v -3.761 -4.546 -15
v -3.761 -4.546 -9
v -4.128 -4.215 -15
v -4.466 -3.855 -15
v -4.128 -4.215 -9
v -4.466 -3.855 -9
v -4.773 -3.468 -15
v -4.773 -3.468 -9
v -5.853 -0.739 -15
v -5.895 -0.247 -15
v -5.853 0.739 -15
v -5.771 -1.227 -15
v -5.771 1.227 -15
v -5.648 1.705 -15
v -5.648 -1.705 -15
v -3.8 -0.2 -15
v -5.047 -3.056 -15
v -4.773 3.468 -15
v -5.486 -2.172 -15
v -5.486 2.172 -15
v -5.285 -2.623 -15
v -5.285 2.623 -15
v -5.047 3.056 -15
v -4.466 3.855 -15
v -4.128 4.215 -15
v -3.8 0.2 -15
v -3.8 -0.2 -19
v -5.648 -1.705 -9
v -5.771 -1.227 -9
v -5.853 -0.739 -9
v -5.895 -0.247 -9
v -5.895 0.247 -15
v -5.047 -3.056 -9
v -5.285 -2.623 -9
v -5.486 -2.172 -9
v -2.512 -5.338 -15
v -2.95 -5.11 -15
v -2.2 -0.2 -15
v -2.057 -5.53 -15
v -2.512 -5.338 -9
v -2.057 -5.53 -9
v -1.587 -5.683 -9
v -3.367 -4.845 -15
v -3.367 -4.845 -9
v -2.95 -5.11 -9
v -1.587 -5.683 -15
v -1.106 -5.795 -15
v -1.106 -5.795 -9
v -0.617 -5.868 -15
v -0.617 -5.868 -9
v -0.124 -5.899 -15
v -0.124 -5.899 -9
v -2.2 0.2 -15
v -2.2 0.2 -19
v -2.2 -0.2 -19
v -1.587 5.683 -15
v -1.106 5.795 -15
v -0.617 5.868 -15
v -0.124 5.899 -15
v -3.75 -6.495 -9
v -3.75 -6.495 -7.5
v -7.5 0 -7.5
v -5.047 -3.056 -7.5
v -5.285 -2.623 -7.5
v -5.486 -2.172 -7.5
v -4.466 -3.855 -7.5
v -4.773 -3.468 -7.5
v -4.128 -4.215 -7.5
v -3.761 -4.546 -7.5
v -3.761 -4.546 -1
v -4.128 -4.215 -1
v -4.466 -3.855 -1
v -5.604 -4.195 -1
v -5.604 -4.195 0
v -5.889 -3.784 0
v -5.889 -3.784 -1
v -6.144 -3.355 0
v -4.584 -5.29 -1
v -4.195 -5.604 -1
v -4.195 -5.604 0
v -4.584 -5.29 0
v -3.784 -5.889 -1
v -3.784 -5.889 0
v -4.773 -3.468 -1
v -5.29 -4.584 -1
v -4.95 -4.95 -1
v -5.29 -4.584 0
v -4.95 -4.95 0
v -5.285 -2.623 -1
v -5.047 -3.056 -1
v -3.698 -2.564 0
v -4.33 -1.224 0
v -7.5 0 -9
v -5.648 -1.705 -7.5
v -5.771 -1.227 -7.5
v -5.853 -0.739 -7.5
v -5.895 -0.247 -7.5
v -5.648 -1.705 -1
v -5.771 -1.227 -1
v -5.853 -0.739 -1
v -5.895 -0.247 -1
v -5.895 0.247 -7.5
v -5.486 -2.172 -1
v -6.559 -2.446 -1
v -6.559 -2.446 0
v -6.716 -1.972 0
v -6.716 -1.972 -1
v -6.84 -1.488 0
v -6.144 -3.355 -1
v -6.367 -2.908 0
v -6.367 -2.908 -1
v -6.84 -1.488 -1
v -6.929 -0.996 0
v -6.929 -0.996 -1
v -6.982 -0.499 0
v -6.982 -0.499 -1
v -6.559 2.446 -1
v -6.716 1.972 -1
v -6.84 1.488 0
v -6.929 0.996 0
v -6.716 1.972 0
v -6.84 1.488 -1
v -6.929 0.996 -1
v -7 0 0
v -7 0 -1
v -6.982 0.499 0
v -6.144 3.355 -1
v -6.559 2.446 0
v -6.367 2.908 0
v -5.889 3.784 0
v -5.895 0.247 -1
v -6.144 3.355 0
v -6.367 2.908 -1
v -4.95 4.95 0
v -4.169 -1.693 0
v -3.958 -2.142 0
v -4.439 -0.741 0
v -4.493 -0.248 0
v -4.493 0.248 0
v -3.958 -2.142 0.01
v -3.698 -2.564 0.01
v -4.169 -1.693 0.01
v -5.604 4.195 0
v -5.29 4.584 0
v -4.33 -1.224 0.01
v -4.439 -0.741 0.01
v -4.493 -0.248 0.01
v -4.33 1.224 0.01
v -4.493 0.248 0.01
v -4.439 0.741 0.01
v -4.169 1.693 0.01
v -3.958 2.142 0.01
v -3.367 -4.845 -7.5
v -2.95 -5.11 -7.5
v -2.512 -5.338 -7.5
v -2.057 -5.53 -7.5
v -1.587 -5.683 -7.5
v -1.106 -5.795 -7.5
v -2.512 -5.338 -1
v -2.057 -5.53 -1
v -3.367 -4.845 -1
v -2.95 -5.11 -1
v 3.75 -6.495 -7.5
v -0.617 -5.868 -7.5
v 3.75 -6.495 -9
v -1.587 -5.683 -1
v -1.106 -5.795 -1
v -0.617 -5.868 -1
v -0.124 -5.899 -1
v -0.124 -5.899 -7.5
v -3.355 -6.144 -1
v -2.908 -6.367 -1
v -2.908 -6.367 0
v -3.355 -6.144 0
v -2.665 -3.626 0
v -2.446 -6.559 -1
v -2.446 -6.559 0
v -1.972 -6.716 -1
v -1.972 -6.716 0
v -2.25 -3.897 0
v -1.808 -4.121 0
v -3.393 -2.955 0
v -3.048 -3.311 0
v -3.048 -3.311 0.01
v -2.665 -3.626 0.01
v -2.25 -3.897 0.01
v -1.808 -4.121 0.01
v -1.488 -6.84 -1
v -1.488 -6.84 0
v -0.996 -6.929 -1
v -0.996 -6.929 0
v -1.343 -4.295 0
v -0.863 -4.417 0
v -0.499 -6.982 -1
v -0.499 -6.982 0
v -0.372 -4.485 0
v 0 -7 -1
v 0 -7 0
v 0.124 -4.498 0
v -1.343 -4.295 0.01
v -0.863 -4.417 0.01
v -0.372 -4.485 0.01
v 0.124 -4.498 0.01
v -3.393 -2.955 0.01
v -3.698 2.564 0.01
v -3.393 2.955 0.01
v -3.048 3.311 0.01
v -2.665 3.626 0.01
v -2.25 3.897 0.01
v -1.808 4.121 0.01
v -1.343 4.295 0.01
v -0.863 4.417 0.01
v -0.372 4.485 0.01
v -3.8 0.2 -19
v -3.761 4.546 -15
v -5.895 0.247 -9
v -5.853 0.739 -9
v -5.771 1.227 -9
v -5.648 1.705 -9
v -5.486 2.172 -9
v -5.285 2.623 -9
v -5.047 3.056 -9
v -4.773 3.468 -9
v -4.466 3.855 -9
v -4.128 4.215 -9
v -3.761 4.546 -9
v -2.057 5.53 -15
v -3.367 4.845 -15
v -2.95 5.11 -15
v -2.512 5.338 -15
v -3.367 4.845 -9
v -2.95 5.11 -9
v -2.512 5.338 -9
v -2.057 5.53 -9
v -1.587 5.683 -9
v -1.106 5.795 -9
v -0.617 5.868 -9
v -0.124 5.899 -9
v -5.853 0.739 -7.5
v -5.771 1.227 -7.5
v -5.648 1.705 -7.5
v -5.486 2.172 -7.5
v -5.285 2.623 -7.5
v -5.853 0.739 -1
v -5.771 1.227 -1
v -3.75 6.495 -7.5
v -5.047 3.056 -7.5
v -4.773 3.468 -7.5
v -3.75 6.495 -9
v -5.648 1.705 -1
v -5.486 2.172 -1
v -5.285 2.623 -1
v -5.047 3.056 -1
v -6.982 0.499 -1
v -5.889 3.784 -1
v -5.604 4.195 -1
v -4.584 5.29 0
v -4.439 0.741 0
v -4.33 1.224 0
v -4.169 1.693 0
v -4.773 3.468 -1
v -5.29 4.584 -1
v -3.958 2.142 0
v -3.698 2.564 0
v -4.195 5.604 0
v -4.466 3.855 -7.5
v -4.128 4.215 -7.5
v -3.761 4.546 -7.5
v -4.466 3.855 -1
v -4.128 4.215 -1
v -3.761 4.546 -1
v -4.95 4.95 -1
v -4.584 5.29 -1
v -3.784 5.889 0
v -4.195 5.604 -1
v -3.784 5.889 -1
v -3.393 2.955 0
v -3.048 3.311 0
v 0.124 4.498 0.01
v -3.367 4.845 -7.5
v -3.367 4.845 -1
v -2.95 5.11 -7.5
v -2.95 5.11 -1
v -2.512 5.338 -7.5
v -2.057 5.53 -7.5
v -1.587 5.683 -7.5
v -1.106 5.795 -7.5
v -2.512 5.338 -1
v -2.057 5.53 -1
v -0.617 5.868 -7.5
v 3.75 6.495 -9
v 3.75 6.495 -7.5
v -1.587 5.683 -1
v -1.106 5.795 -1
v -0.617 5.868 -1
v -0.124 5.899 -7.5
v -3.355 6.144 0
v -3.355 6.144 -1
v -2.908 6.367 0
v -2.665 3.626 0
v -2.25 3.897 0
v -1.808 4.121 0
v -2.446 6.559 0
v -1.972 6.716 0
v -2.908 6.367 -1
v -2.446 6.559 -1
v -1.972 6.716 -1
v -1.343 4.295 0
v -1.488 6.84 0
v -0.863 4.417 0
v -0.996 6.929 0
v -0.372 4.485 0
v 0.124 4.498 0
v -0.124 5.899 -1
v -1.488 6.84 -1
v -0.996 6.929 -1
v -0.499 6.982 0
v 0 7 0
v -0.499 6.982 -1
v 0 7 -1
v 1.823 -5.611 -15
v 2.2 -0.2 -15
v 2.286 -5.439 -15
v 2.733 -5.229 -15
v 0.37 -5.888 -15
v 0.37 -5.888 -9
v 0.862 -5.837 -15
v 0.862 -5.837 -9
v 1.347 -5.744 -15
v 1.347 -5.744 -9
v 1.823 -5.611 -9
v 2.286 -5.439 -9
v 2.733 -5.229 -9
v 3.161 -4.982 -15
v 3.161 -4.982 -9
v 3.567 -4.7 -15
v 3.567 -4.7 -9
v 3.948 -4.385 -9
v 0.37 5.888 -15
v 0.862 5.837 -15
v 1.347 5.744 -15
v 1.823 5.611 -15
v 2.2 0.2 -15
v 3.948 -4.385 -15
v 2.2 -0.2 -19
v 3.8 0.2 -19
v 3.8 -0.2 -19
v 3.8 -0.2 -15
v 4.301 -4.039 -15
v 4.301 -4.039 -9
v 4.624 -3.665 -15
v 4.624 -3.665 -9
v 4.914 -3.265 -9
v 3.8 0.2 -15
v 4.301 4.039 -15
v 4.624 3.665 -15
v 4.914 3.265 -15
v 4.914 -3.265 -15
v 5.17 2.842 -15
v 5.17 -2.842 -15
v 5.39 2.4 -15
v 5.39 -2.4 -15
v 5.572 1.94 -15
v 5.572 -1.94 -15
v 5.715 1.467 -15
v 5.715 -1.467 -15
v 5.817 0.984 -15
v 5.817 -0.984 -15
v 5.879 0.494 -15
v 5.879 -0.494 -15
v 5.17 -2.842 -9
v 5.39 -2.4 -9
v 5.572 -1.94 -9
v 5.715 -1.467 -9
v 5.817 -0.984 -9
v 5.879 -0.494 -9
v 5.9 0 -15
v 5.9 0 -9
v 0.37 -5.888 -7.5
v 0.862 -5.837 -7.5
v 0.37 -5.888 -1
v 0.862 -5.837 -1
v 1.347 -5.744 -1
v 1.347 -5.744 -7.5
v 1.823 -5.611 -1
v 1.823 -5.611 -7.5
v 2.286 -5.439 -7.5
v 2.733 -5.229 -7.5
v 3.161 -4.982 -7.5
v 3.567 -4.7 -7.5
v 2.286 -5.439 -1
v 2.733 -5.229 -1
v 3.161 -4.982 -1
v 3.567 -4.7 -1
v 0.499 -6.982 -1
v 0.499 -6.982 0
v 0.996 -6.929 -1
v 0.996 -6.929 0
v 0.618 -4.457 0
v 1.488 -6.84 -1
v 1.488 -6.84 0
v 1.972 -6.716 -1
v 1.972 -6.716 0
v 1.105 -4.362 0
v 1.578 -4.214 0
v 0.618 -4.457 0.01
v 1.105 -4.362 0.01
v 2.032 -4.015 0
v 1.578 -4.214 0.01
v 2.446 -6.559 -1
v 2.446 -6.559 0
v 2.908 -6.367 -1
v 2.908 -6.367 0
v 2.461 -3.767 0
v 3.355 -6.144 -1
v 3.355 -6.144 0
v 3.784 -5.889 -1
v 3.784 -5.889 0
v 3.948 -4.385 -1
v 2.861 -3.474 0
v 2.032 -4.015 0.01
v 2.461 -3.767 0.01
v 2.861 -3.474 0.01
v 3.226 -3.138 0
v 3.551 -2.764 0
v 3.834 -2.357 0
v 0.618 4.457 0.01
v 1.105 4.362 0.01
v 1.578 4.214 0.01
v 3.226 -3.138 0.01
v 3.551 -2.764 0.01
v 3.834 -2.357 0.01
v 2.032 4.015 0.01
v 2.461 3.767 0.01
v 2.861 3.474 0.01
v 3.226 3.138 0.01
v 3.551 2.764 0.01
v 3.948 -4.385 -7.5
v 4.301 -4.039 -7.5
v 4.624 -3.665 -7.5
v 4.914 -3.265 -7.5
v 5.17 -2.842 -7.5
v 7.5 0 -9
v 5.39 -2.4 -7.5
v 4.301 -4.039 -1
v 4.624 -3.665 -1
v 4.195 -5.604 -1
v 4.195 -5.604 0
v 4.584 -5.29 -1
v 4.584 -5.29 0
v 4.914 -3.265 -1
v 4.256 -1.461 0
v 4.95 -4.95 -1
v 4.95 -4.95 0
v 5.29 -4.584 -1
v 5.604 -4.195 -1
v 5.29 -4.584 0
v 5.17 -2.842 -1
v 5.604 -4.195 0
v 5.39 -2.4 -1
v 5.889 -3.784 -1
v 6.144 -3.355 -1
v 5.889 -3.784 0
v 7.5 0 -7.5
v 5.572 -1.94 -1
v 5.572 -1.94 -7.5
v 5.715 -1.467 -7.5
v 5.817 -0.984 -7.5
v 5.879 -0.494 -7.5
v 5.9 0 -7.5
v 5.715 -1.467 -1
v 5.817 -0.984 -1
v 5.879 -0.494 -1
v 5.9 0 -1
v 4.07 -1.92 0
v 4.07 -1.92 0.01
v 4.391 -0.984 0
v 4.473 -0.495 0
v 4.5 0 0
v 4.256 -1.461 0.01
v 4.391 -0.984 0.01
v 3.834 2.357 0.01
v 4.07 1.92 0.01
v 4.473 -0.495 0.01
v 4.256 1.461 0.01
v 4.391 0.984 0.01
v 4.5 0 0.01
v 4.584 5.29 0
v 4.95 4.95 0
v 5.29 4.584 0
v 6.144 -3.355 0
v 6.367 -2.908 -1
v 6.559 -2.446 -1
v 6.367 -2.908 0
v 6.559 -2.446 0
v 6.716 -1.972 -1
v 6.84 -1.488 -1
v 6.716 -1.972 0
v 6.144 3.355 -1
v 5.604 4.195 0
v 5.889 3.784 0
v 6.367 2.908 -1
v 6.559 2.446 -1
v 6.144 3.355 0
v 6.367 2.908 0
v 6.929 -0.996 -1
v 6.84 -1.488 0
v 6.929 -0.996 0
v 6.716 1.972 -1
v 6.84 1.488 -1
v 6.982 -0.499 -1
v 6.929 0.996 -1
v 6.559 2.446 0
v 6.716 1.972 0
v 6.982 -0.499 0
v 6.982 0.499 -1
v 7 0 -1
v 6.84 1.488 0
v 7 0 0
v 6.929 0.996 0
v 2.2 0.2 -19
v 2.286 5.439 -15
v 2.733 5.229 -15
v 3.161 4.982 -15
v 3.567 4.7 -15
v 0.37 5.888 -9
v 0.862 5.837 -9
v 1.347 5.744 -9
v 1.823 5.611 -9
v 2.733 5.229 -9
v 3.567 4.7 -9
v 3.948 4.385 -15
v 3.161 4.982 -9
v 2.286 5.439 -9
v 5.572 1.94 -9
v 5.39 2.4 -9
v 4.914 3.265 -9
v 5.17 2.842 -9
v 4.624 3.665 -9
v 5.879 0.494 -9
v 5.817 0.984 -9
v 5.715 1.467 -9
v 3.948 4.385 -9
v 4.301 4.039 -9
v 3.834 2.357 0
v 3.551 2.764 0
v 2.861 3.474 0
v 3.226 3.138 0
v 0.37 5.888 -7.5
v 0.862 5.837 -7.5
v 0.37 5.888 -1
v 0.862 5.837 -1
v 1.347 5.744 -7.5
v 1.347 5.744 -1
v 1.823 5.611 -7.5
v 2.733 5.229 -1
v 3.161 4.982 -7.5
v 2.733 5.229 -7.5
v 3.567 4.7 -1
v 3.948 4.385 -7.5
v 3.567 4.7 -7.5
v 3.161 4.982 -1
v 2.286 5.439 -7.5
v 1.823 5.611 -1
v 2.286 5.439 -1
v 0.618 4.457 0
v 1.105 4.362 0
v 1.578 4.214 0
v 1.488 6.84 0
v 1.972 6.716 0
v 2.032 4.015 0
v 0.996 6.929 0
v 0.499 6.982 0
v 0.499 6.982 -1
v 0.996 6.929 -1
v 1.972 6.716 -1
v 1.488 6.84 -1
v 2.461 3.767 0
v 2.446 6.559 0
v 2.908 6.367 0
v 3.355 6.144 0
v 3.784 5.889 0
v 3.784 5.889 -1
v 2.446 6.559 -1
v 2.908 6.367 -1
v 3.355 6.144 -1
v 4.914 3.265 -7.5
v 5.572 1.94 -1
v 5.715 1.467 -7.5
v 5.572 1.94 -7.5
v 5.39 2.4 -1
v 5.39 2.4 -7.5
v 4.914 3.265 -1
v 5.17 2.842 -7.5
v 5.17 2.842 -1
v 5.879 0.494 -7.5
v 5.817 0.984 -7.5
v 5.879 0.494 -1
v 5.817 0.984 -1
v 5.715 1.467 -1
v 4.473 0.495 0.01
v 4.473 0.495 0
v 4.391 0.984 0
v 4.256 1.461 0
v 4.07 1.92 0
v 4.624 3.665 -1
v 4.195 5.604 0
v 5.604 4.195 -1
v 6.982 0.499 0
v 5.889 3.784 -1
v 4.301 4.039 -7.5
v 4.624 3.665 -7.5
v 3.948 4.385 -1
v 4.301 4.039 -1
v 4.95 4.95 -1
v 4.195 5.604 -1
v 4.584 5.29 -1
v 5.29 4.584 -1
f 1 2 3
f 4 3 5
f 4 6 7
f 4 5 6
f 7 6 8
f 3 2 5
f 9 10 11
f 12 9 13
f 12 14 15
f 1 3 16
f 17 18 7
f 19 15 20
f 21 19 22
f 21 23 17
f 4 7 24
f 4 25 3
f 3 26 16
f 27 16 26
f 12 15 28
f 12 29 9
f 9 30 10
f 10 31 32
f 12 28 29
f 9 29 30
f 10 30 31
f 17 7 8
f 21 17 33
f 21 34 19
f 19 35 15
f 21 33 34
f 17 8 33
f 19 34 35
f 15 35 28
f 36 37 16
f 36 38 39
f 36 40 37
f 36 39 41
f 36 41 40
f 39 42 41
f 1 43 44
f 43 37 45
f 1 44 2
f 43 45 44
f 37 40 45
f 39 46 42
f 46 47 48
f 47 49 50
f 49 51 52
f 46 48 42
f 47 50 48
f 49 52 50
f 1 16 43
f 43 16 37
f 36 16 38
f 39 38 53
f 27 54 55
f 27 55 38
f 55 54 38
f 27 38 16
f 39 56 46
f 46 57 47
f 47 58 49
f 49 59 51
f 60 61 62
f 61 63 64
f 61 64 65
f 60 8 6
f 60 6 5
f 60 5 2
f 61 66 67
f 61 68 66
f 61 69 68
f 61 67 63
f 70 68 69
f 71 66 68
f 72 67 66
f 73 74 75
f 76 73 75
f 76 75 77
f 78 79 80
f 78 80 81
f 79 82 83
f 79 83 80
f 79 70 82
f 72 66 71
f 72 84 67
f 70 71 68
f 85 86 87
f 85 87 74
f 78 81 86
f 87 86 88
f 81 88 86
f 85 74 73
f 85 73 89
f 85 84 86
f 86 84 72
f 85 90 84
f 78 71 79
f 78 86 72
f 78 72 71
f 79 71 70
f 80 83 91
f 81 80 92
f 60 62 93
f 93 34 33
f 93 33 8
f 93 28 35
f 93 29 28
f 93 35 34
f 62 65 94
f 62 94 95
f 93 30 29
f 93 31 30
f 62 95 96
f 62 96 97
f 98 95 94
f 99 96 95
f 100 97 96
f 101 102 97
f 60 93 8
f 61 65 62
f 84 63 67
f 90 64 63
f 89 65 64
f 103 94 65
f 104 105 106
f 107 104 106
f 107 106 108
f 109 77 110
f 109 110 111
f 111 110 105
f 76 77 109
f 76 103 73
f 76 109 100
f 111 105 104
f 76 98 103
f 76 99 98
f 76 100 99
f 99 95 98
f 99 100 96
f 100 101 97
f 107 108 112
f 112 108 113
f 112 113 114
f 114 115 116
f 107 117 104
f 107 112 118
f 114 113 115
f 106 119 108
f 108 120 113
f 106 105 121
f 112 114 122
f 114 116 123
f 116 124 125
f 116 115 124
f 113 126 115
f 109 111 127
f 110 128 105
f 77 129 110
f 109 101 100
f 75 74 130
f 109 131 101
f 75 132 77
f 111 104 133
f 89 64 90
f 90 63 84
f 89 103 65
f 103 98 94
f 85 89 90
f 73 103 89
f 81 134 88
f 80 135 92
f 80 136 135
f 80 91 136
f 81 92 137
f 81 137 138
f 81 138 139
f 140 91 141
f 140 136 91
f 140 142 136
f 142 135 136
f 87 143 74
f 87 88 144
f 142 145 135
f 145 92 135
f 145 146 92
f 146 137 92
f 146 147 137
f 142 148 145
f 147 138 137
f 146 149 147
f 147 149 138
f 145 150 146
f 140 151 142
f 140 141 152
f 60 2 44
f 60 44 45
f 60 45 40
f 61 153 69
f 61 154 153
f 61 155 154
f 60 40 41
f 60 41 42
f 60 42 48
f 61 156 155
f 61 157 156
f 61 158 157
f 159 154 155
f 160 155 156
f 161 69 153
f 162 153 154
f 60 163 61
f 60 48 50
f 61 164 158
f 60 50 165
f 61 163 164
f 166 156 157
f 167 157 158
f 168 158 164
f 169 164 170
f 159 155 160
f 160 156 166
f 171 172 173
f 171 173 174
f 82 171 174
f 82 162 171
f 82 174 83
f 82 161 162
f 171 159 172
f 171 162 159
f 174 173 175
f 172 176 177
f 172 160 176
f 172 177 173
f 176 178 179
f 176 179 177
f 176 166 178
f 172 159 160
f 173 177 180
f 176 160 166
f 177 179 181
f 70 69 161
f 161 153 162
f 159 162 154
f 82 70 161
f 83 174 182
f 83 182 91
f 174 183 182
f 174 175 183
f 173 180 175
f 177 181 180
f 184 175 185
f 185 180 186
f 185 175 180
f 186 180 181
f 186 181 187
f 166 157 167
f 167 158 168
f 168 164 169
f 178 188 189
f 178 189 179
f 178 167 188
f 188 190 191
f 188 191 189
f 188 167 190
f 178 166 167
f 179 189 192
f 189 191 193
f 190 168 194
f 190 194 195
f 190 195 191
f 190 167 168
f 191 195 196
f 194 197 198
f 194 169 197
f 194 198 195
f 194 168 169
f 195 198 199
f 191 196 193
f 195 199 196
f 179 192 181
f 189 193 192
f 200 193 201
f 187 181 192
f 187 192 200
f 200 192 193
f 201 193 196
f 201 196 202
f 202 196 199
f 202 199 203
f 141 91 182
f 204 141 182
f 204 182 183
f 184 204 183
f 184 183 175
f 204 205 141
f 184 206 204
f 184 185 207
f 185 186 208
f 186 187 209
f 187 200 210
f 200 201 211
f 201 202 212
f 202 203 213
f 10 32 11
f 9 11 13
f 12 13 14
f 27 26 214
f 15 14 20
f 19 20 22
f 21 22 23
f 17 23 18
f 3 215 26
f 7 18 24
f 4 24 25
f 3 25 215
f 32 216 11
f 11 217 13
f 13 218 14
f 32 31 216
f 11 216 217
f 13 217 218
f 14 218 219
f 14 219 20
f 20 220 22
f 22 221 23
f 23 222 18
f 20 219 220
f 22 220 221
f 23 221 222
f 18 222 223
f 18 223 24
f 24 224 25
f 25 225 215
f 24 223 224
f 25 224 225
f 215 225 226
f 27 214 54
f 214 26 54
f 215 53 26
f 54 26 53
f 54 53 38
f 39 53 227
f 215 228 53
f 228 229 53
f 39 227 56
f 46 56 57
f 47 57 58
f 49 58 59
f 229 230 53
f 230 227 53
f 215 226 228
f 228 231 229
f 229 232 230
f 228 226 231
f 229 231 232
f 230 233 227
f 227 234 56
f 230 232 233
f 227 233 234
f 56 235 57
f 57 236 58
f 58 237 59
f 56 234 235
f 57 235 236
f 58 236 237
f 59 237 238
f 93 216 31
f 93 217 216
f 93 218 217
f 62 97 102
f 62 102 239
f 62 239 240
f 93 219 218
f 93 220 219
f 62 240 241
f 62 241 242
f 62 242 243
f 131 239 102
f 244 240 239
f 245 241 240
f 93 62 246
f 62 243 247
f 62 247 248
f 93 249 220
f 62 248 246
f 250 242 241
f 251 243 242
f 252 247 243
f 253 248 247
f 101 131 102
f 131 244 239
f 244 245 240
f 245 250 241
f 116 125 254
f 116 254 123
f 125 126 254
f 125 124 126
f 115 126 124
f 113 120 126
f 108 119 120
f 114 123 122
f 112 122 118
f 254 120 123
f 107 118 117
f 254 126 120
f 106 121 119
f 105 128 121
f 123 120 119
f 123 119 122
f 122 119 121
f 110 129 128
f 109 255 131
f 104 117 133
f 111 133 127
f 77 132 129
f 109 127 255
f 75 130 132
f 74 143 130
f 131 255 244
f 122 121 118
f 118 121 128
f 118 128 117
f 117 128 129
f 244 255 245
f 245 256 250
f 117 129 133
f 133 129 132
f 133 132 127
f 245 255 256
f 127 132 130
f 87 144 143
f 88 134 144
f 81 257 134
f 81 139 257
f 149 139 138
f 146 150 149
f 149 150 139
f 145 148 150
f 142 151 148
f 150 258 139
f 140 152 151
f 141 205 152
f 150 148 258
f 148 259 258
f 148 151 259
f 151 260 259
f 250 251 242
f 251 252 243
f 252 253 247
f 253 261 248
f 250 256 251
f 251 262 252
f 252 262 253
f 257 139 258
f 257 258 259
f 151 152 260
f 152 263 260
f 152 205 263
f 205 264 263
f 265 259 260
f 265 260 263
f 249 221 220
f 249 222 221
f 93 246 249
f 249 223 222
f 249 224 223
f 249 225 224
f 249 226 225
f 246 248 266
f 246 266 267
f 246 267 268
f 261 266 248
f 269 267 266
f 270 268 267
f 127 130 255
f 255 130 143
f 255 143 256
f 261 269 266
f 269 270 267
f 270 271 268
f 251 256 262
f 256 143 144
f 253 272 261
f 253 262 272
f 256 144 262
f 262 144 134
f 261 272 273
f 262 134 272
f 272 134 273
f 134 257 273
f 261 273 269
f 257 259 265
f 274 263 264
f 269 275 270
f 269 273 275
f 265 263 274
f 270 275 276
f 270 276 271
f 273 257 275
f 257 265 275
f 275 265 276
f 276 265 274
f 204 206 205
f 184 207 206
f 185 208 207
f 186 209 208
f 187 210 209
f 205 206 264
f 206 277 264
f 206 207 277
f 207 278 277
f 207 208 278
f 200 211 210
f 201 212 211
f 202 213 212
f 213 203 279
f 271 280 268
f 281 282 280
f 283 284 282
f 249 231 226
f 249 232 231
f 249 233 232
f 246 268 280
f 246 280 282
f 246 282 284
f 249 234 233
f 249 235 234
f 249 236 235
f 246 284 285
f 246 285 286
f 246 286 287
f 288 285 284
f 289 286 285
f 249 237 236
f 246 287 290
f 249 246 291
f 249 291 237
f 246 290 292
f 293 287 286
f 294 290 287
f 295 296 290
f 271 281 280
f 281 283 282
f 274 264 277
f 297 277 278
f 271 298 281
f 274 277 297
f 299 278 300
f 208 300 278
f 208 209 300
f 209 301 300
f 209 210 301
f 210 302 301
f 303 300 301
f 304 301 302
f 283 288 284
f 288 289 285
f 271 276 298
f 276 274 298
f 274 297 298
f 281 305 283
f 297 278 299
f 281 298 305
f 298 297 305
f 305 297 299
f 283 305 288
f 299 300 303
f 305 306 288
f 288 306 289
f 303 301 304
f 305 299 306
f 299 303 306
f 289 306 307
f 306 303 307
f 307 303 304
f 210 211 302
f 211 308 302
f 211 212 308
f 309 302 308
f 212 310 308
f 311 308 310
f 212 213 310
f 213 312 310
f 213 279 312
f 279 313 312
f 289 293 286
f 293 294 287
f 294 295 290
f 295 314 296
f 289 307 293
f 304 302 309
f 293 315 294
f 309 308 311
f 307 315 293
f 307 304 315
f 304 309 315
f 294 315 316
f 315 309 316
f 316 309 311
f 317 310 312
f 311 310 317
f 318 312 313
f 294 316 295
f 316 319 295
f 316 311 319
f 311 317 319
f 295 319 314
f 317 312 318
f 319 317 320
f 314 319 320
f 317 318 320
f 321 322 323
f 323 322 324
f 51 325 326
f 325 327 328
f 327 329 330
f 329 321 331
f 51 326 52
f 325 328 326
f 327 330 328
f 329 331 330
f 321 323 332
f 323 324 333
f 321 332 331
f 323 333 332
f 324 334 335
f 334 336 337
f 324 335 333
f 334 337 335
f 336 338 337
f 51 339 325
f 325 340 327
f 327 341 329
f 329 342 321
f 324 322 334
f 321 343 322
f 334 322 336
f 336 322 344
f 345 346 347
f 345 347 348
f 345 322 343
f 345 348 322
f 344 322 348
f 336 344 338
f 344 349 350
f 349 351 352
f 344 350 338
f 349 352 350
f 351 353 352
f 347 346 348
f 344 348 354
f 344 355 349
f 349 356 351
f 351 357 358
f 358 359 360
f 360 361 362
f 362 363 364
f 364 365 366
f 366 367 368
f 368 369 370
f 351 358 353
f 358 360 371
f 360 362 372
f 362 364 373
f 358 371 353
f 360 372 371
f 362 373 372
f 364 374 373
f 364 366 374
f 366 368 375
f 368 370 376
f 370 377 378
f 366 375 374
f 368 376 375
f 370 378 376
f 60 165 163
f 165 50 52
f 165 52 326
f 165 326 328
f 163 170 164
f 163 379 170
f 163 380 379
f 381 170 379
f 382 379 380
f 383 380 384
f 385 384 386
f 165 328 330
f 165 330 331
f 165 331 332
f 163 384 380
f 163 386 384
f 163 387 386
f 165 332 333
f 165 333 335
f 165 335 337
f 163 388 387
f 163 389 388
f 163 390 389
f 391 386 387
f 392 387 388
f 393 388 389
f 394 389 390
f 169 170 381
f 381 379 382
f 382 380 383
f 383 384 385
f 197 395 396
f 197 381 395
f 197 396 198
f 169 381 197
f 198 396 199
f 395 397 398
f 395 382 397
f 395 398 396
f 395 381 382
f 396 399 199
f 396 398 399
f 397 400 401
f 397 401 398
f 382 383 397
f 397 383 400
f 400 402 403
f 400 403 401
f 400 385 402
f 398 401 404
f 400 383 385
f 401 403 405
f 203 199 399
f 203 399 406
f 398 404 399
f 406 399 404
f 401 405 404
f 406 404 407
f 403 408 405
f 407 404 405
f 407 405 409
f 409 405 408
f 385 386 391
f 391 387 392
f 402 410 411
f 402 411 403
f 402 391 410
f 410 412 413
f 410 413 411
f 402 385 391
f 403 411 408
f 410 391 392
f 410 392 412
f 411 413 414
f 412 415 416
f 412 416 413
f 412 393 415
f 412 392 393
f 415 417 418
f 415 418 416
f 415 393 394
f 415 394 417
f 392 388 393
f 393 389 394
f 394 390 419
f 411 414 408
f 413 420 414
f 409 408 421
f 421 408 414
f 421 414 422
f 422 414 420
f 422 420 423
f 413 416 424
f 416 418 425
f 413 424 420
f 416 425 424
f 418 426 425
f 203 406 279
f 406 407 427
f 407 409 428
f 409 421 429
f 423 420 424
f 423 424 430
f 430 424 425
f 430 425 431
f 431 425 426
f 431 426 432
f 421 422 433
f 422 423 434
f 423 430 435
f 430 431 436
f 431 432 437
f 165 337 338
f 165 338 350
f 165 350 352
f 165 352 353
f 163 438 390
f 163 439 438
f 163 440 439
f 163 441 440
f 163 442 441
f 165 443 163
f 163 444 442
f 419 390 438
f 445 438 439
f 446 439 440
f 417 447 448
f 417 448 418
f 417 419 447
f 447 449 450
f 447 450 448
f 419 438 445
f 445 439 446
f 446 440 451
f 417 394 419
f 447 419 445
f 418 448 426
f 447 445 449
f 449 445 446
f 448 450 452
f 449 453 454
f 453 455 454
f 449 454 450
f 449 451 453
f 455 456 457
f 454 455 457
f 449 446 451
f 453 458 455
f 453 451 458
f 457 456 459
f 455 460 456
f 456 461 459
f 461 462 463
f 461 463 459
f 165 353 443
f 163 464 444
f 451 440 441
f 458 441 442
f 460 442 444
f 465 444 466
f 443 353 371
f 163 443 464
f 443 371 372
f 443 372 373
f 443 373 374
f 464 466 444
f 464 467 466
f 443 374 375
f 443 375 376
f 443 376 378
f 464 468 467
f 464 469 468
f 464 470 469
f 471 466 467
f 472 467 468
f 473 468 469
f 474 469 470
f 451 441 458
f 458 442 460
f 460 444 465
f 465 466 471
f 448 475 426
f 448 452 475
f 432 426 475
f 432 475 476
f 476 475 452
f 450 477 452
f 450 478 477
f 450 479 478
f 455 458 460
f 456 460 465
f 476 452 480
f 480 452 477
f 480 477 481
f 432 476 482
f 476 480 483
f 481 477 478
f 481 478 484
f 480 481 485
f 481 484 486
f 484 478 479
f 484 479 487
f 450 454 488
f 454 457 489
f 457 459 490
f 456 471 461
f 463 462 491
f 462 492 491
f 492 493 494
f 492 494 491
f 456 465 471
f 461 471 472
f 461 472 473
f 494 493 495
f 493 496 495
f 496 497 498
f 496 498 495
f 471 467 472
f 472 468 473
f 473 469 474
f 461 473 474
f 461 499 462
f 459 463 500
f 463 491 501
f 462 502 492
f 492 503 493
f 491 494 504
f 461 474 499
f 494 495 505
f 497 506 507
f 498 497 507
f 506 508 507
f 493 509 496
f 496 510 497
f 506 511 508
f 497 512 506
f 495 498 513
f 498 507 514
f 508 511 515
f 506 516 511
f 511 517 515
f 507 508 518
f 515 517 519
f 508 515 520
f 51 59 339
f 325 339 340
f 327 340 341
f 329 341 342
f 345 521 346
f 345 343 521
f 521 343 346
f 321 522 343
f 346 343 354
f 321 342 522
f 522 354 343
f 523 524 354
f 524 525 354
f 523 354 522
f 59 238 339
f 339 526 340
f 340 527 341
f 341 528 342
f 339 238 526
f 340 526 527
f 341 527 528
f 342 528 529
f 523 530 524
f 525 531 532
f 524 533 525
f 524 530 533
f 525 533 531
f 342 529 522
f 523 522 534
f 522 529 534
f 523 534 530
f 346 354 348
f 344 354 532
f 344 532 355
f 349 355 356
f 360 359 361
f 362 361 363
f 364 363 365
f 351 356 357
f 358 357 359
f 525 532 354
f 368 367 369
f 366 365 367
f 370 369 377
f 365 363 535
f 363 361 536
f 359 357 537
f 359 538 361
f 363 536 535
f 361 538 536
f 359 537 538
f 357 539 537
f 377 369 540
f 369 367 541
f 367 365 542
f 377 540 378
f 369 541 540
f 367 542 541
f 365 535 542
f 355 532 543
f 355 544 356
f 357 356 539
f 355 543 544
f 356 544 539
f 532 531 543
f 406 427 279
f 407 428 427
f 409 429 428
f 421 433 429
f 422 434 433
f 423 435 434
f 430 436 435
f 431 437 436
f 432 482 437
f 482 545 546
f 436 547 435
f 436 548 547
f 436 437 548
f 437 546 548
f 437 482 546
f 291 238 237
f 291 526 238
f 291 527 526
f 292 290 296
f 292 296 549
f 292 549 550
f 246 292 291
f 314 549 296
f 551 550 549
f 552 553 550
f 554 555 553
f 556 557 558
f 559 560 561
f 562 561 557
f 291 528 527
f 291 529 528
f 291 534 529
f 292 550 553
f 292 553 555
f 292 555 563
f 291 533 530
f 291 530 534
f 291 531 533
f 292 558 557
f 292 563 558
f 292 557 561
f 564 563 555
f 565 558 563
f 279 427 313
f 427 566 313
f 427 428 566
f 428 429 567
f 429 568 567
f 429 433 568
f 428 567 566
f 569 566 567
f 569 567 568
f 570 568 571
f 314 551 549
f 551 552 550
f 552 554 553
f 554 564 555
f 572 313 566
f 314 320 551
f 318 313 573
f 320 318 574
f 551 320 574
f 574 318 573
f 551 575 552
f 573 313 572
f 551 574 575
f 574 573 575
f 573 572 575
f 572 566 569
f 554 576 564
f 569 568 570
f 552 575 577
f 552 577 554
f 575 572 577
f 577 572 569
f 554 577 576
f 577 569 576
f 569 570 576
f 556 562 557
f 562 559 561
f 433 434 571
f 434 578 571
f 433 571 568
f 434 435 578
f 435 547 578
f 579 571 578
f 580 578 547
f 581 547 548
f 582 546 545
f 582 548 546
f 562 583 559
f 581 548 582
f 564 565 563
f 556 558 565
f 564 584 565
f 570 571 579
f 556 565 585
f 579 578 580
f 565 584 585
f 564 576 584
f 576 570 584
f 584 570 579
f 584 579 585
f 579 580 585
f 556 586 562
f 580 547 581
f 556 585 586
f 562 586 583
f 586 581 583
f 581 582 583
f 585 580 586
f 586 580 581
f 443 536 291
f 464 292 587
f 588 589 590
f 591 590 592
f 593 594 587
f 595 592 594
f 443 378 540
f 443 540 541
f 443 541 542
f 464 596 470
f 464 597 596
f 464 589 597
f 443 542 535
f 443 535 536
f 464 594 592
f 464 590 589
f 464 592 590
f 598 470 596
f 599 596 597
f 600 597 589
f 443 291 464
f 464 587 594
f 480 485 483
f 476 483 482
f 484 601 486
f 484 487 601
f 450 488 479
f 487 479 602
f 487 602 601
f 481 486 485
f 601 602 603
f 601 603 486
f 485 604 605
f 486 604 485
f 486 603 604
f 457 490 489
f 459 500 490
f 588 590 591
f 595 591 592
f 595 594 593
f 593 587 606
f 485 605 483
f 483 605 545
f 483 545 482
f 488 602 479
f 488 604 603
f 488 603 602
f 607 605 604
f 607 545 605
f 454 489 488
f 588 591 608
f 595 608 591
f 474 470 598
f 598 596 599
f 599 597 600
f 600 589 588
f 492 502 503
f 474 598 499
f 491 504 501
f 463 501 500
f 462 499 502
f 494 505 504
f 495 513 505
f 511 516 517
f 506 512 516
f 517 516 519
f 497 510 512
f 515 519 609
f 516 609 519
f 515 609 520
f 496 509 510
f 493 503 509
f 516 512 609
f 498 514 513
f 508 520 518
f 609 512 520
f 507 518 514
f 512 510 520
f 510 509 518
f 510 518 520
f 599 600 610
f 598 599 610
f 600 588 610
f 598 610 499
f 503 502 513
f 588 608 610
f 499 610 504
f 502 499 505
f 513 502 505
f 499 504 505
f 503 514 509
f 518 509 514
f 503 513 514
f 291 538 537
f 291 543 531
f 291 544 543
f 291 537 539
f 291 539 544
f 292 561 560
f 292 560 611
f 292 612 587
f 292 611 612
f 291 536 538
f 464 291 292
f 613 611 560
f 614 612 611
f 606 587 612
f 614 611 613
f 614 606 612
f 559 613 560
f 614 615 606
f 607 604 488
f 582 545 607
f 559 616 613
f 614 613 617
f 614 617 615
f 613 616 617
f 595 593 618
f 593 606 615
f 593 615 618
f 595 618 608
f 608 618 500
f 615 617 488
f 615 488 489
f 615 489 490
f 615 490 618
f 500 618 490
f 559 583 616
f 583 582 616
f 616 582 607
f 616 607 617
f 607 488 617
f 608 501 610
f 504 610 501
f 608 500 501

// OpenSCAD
// file: ../lib/lib.scad
// Shared helpers. Include AFTER params.scad (needs TOL, M3_* etc.).
$fa = 4; $fs = 0.5;

module rrect(size, r) {            // 2D rounded rectangle, centred
    r2 = min(r, min(size[0], size[1]) / 2 - 0.001);
    offset(r = r2) square([size[0] - 2 * r2, size[1] - 2 * r2], center = true);
}
module rbox(size, r, center_xy = true) {   // box with rounded vertical edges
    translate(center_xy ? [0, 0, 0] : [size[0] / 2, size[1] / 2, 0])
        linear_extrude(size[2]) rrect([size[0], size[1]], r);
}
module rbox_at(x0, x1, y0, y1, z0, z1, r = 0.01) {
    translate([(x0 + x1) / 2, (y0 + y1) / 2, z0]) rbox([x1 - x0, y1 - y0, z1 - z0], r);
}
module box_at(x0, x1, y0, y1, z0, z1) { translate([x0, y0, z0]) cube([x1 - x0, y1 - y0, z1 - z0]); }

module ring(ro, ri, h) { difference() { cylinder(r = ro, h = h); translate([0, 0, -1]) cylinder(r = ri, h = h + 2); } }
module ring_sector(ro, ri, h, a0, a1) {
    intersection() {
        ring(ro, ri, h);
        linear_extrude(h) polygon(concat([[0, 0]], [for (a = [a0 : (a1 - a0) / 24 : a1]) 2 * ro * [cos(a), sin(a)]]));
    }
}
// teardrop hole along an axis lying horizontal (axis = Y after rotation), printable w/o support
module teardrop2d(d) { union() { circle(d = d); rotate(45) square(d / 2); } }
// vertical heat-set insert hole, opening at z=0 going +z (depth l)
module insert_hole(l = M3_INSERT_L) { translate([0, 0, -EPS]) cylinder(d = M3_INSERT_D, h = l + EPS); }
module m3_clear(l) { translate([0, 0, -EPS]) cylinder(d = M3_CLEAR, h = l + 2 * EPS); }
module m3_csk(l) {  // countersunk clearance from z=0 upward, head at z=0 side
    translate([0, 0, -EPS]) { cylinder(d = M3_CLEAR, h = l + 2 * EPS); cylinder(d1 = 6.4, d2 = M3_CLEAR, h = 1.7); }
}
module card2d() { rrect([CARD_L, CARD_W], CARD_R); }
module card_at(cy, z) { translate([0, cy, z]) linear_extrude(CARD_T) card2d(); }

// ---- gears ----
function _inv(a) = tan(a) - a * PI_ / 180;           // involute function, a in deg
function _invpt(rb, r, ang0, s) = let(al = acos(rb / r), th = ang0 - s * (_inv(al) * 180 / PI_)) [r * cos(th), r * sin(th)];
module involute_gear2d(m, z, pa = 20, clearance = 0.05) {
    rp = m * z / 2; rb = rp * cos(pa); ra = rp + m - clearance; rf = rp - 1.25 * m;
    half = 90 / z + _inv(pa) * 180 / PI_;            // tooth half-angle at base (deg)
    n = 8;
    rs = [for (i = [0 : n]) max(rb, rf) + (ra - max(rb, rf)) * i / n];
    union() {
        circle(r = rf, $fn = z * 4);
        for (k = [0 : z - 1]) rotate(k * 360 / z) polygon(concat(
            [[rf * cos(-half), rf * sin(-half)]],
            [for (r = rs) let(p = _invpt(rb, r, half, 1)) [p[0], -p[1]]],
            [for (i = [n : -1 : 0]) _invpt(rb, rs[i], half, 1)],
            [[rf * cos(half), rf * sin(half)]]));
    }
}
// straight gear rack (2D in XY: teeth along +x, pointing -y, pitch line at y=0)
module gear_rack2d(m, len, back = 3) {
    p = PI_ * m; ad = m; de = 1.25 * m; t = tan(20);
    n = ceil(len / p) + 1;
    intersection() {
        union() {
            translate([0, de]) square([len, back]);
            for (i = [0 : n]) translate([i * p - p / 4, 0]) polygon([
                [-(p / 4 + de * t), de + 0.01], [p / 4 + de * t + 0.01, de + 0.01],
                [p / 4 - ad * t, -ad], [-(p / 4 - ad * t), -ad] ]);
        }
        translate([0, -ad - 1]) square([len, ad + de + back + 2]);
    }
}
// GT2 belt-tooth profile ring (teeth outward), 2D
module gt2_ring2d(n, r_land, ri) {
    union() {
        difference() { circle(r = r_land + 0.01, $fn = n * 2); circle(r = ri, $fn = n * 2); }
        for (k = [0 : n - 1]) rotate(k * 360 / n)
            translate([r_land, 0]) hull() { translate([-0.2, 0]) square([0.2, 1.0], center = true); translate([0.25, 0]) circle(r = 0.5, $fn = 12); }
    }
}
// main file
// Vendor model: 12 mm flush metal momentary push button (GO / SET). Local: front face z=0, body toward -Z.
include <../params.scad>
include <../lib/lib.scad>
module vendor_button_12mm() {
    color([0.72,0.73,0.75]) { translate([0, 0, -1]) cylinder(d = 14, h = 1); translate([0, 0, -15]) cylinder(d = 11.8, h = 14); }
    color([0.55,0.56,0.58]) translate([0, 0, -1.01]) cylinder(d = 9, h = 1.02);
    color([0.6,0.6,0.6]) translate([0, 0, -9]) cylinder(d = 15, h = 1.5, $fn = 6);
    color([0.85,0.7,0.2]) for (x = [-3, 3]) translate([x - 0.8, -0.2, -19]) cube([1.6, 0.4, 4]);
}

vendor_button_12mm();
